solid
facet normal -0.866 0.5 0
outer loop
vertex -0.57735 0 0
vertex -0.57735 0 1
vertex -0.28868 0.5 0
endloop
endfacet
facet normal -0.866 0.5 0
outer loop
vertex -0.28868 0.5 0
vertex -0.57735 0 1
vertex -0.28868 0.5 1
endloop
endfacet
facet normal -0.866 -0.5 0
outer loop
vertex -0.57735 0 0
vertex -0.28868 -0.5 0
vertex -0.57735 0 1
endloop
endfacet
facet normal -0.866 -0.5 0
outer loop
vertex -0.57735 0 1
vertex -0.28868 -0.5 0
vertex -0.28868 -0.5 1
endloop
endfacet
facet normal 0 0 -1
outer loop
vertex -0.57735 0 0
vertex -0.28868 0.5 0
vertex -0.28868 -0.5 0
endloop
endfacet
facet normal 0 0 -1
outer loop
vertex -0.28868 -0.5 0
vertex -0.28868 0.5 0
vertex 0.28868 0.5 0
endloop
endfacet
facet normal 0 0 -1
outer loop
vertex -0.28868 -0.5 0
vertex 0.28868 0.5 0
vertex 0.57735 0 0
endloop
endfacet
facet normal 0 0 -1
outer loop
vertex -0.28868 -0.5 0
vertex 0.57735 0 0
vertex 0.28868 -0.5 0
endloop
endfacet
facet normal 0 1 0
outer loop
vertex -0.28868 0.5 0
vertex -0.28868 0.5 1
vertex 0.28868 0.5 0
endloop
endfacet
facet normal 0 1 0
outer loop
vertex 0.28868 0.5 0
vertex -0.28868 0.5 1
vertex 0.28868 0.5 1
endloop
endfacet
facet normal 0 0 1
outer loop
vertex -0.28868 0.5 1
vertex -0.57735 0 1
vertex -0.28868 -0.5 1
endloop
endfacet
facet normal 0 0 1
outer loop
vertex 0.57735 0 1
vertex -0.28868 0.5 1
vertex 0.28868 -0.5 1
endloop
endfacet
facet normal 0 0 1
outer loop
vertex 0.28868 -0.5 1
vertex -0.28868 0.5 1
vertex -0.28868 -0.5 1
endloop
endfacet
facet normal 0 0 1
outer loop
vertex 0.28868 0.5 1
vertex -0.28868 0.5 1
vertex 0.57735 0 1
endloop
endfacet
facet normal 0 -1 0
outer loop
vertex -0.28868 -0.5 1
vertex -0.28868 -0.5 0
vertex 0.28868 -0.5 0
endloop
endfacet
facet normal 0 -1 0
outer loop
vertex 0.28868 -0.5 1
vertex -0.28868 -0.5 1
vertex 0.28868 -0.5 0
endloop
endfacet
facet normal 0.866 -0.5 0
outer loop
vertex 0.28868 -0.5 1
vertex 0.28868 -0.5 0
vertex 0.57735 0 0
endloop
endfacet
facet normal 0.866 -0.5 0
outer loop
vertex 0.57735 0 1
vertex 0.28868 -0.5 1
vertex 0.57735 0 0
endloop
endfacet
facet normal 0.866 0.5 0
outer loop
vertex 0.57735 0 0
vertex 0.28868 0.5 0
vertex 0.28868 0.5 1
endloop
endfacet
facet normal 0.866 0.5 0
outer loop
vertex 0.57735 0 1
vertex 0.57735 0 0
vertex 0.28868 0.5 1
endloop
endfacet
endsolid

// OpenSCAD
// Unit Hexagon

$fa=9;
$fs=0.1;

scale_1in=25.4;

module unit_hexagon(
        hexagon_w=1.0
        , hexagon_h=1.0
        ) {
  intersection () {
    translate([-hexagon_w,-hexagon_w/2,0]) scale([2*hexagon_w,hexagon_w,hexagon_h])  cube(size=1.0, center=false);
    rotate([0,0,60])
        translate([-hexagon_w,-hexagon_w/2,0]) scale([2*hexagon_w,hexagon_w,hexagon_h]) cube(size=1.0, center=false);
    rotate([0,0,120])
        translate([-hexagon_w,-hexagon_w/2,0]) scale([2*hexagon_w,hexagon_w,hexagon_h]) cube(size=1.0, center=false);
  }
}

unit_hexagon();
